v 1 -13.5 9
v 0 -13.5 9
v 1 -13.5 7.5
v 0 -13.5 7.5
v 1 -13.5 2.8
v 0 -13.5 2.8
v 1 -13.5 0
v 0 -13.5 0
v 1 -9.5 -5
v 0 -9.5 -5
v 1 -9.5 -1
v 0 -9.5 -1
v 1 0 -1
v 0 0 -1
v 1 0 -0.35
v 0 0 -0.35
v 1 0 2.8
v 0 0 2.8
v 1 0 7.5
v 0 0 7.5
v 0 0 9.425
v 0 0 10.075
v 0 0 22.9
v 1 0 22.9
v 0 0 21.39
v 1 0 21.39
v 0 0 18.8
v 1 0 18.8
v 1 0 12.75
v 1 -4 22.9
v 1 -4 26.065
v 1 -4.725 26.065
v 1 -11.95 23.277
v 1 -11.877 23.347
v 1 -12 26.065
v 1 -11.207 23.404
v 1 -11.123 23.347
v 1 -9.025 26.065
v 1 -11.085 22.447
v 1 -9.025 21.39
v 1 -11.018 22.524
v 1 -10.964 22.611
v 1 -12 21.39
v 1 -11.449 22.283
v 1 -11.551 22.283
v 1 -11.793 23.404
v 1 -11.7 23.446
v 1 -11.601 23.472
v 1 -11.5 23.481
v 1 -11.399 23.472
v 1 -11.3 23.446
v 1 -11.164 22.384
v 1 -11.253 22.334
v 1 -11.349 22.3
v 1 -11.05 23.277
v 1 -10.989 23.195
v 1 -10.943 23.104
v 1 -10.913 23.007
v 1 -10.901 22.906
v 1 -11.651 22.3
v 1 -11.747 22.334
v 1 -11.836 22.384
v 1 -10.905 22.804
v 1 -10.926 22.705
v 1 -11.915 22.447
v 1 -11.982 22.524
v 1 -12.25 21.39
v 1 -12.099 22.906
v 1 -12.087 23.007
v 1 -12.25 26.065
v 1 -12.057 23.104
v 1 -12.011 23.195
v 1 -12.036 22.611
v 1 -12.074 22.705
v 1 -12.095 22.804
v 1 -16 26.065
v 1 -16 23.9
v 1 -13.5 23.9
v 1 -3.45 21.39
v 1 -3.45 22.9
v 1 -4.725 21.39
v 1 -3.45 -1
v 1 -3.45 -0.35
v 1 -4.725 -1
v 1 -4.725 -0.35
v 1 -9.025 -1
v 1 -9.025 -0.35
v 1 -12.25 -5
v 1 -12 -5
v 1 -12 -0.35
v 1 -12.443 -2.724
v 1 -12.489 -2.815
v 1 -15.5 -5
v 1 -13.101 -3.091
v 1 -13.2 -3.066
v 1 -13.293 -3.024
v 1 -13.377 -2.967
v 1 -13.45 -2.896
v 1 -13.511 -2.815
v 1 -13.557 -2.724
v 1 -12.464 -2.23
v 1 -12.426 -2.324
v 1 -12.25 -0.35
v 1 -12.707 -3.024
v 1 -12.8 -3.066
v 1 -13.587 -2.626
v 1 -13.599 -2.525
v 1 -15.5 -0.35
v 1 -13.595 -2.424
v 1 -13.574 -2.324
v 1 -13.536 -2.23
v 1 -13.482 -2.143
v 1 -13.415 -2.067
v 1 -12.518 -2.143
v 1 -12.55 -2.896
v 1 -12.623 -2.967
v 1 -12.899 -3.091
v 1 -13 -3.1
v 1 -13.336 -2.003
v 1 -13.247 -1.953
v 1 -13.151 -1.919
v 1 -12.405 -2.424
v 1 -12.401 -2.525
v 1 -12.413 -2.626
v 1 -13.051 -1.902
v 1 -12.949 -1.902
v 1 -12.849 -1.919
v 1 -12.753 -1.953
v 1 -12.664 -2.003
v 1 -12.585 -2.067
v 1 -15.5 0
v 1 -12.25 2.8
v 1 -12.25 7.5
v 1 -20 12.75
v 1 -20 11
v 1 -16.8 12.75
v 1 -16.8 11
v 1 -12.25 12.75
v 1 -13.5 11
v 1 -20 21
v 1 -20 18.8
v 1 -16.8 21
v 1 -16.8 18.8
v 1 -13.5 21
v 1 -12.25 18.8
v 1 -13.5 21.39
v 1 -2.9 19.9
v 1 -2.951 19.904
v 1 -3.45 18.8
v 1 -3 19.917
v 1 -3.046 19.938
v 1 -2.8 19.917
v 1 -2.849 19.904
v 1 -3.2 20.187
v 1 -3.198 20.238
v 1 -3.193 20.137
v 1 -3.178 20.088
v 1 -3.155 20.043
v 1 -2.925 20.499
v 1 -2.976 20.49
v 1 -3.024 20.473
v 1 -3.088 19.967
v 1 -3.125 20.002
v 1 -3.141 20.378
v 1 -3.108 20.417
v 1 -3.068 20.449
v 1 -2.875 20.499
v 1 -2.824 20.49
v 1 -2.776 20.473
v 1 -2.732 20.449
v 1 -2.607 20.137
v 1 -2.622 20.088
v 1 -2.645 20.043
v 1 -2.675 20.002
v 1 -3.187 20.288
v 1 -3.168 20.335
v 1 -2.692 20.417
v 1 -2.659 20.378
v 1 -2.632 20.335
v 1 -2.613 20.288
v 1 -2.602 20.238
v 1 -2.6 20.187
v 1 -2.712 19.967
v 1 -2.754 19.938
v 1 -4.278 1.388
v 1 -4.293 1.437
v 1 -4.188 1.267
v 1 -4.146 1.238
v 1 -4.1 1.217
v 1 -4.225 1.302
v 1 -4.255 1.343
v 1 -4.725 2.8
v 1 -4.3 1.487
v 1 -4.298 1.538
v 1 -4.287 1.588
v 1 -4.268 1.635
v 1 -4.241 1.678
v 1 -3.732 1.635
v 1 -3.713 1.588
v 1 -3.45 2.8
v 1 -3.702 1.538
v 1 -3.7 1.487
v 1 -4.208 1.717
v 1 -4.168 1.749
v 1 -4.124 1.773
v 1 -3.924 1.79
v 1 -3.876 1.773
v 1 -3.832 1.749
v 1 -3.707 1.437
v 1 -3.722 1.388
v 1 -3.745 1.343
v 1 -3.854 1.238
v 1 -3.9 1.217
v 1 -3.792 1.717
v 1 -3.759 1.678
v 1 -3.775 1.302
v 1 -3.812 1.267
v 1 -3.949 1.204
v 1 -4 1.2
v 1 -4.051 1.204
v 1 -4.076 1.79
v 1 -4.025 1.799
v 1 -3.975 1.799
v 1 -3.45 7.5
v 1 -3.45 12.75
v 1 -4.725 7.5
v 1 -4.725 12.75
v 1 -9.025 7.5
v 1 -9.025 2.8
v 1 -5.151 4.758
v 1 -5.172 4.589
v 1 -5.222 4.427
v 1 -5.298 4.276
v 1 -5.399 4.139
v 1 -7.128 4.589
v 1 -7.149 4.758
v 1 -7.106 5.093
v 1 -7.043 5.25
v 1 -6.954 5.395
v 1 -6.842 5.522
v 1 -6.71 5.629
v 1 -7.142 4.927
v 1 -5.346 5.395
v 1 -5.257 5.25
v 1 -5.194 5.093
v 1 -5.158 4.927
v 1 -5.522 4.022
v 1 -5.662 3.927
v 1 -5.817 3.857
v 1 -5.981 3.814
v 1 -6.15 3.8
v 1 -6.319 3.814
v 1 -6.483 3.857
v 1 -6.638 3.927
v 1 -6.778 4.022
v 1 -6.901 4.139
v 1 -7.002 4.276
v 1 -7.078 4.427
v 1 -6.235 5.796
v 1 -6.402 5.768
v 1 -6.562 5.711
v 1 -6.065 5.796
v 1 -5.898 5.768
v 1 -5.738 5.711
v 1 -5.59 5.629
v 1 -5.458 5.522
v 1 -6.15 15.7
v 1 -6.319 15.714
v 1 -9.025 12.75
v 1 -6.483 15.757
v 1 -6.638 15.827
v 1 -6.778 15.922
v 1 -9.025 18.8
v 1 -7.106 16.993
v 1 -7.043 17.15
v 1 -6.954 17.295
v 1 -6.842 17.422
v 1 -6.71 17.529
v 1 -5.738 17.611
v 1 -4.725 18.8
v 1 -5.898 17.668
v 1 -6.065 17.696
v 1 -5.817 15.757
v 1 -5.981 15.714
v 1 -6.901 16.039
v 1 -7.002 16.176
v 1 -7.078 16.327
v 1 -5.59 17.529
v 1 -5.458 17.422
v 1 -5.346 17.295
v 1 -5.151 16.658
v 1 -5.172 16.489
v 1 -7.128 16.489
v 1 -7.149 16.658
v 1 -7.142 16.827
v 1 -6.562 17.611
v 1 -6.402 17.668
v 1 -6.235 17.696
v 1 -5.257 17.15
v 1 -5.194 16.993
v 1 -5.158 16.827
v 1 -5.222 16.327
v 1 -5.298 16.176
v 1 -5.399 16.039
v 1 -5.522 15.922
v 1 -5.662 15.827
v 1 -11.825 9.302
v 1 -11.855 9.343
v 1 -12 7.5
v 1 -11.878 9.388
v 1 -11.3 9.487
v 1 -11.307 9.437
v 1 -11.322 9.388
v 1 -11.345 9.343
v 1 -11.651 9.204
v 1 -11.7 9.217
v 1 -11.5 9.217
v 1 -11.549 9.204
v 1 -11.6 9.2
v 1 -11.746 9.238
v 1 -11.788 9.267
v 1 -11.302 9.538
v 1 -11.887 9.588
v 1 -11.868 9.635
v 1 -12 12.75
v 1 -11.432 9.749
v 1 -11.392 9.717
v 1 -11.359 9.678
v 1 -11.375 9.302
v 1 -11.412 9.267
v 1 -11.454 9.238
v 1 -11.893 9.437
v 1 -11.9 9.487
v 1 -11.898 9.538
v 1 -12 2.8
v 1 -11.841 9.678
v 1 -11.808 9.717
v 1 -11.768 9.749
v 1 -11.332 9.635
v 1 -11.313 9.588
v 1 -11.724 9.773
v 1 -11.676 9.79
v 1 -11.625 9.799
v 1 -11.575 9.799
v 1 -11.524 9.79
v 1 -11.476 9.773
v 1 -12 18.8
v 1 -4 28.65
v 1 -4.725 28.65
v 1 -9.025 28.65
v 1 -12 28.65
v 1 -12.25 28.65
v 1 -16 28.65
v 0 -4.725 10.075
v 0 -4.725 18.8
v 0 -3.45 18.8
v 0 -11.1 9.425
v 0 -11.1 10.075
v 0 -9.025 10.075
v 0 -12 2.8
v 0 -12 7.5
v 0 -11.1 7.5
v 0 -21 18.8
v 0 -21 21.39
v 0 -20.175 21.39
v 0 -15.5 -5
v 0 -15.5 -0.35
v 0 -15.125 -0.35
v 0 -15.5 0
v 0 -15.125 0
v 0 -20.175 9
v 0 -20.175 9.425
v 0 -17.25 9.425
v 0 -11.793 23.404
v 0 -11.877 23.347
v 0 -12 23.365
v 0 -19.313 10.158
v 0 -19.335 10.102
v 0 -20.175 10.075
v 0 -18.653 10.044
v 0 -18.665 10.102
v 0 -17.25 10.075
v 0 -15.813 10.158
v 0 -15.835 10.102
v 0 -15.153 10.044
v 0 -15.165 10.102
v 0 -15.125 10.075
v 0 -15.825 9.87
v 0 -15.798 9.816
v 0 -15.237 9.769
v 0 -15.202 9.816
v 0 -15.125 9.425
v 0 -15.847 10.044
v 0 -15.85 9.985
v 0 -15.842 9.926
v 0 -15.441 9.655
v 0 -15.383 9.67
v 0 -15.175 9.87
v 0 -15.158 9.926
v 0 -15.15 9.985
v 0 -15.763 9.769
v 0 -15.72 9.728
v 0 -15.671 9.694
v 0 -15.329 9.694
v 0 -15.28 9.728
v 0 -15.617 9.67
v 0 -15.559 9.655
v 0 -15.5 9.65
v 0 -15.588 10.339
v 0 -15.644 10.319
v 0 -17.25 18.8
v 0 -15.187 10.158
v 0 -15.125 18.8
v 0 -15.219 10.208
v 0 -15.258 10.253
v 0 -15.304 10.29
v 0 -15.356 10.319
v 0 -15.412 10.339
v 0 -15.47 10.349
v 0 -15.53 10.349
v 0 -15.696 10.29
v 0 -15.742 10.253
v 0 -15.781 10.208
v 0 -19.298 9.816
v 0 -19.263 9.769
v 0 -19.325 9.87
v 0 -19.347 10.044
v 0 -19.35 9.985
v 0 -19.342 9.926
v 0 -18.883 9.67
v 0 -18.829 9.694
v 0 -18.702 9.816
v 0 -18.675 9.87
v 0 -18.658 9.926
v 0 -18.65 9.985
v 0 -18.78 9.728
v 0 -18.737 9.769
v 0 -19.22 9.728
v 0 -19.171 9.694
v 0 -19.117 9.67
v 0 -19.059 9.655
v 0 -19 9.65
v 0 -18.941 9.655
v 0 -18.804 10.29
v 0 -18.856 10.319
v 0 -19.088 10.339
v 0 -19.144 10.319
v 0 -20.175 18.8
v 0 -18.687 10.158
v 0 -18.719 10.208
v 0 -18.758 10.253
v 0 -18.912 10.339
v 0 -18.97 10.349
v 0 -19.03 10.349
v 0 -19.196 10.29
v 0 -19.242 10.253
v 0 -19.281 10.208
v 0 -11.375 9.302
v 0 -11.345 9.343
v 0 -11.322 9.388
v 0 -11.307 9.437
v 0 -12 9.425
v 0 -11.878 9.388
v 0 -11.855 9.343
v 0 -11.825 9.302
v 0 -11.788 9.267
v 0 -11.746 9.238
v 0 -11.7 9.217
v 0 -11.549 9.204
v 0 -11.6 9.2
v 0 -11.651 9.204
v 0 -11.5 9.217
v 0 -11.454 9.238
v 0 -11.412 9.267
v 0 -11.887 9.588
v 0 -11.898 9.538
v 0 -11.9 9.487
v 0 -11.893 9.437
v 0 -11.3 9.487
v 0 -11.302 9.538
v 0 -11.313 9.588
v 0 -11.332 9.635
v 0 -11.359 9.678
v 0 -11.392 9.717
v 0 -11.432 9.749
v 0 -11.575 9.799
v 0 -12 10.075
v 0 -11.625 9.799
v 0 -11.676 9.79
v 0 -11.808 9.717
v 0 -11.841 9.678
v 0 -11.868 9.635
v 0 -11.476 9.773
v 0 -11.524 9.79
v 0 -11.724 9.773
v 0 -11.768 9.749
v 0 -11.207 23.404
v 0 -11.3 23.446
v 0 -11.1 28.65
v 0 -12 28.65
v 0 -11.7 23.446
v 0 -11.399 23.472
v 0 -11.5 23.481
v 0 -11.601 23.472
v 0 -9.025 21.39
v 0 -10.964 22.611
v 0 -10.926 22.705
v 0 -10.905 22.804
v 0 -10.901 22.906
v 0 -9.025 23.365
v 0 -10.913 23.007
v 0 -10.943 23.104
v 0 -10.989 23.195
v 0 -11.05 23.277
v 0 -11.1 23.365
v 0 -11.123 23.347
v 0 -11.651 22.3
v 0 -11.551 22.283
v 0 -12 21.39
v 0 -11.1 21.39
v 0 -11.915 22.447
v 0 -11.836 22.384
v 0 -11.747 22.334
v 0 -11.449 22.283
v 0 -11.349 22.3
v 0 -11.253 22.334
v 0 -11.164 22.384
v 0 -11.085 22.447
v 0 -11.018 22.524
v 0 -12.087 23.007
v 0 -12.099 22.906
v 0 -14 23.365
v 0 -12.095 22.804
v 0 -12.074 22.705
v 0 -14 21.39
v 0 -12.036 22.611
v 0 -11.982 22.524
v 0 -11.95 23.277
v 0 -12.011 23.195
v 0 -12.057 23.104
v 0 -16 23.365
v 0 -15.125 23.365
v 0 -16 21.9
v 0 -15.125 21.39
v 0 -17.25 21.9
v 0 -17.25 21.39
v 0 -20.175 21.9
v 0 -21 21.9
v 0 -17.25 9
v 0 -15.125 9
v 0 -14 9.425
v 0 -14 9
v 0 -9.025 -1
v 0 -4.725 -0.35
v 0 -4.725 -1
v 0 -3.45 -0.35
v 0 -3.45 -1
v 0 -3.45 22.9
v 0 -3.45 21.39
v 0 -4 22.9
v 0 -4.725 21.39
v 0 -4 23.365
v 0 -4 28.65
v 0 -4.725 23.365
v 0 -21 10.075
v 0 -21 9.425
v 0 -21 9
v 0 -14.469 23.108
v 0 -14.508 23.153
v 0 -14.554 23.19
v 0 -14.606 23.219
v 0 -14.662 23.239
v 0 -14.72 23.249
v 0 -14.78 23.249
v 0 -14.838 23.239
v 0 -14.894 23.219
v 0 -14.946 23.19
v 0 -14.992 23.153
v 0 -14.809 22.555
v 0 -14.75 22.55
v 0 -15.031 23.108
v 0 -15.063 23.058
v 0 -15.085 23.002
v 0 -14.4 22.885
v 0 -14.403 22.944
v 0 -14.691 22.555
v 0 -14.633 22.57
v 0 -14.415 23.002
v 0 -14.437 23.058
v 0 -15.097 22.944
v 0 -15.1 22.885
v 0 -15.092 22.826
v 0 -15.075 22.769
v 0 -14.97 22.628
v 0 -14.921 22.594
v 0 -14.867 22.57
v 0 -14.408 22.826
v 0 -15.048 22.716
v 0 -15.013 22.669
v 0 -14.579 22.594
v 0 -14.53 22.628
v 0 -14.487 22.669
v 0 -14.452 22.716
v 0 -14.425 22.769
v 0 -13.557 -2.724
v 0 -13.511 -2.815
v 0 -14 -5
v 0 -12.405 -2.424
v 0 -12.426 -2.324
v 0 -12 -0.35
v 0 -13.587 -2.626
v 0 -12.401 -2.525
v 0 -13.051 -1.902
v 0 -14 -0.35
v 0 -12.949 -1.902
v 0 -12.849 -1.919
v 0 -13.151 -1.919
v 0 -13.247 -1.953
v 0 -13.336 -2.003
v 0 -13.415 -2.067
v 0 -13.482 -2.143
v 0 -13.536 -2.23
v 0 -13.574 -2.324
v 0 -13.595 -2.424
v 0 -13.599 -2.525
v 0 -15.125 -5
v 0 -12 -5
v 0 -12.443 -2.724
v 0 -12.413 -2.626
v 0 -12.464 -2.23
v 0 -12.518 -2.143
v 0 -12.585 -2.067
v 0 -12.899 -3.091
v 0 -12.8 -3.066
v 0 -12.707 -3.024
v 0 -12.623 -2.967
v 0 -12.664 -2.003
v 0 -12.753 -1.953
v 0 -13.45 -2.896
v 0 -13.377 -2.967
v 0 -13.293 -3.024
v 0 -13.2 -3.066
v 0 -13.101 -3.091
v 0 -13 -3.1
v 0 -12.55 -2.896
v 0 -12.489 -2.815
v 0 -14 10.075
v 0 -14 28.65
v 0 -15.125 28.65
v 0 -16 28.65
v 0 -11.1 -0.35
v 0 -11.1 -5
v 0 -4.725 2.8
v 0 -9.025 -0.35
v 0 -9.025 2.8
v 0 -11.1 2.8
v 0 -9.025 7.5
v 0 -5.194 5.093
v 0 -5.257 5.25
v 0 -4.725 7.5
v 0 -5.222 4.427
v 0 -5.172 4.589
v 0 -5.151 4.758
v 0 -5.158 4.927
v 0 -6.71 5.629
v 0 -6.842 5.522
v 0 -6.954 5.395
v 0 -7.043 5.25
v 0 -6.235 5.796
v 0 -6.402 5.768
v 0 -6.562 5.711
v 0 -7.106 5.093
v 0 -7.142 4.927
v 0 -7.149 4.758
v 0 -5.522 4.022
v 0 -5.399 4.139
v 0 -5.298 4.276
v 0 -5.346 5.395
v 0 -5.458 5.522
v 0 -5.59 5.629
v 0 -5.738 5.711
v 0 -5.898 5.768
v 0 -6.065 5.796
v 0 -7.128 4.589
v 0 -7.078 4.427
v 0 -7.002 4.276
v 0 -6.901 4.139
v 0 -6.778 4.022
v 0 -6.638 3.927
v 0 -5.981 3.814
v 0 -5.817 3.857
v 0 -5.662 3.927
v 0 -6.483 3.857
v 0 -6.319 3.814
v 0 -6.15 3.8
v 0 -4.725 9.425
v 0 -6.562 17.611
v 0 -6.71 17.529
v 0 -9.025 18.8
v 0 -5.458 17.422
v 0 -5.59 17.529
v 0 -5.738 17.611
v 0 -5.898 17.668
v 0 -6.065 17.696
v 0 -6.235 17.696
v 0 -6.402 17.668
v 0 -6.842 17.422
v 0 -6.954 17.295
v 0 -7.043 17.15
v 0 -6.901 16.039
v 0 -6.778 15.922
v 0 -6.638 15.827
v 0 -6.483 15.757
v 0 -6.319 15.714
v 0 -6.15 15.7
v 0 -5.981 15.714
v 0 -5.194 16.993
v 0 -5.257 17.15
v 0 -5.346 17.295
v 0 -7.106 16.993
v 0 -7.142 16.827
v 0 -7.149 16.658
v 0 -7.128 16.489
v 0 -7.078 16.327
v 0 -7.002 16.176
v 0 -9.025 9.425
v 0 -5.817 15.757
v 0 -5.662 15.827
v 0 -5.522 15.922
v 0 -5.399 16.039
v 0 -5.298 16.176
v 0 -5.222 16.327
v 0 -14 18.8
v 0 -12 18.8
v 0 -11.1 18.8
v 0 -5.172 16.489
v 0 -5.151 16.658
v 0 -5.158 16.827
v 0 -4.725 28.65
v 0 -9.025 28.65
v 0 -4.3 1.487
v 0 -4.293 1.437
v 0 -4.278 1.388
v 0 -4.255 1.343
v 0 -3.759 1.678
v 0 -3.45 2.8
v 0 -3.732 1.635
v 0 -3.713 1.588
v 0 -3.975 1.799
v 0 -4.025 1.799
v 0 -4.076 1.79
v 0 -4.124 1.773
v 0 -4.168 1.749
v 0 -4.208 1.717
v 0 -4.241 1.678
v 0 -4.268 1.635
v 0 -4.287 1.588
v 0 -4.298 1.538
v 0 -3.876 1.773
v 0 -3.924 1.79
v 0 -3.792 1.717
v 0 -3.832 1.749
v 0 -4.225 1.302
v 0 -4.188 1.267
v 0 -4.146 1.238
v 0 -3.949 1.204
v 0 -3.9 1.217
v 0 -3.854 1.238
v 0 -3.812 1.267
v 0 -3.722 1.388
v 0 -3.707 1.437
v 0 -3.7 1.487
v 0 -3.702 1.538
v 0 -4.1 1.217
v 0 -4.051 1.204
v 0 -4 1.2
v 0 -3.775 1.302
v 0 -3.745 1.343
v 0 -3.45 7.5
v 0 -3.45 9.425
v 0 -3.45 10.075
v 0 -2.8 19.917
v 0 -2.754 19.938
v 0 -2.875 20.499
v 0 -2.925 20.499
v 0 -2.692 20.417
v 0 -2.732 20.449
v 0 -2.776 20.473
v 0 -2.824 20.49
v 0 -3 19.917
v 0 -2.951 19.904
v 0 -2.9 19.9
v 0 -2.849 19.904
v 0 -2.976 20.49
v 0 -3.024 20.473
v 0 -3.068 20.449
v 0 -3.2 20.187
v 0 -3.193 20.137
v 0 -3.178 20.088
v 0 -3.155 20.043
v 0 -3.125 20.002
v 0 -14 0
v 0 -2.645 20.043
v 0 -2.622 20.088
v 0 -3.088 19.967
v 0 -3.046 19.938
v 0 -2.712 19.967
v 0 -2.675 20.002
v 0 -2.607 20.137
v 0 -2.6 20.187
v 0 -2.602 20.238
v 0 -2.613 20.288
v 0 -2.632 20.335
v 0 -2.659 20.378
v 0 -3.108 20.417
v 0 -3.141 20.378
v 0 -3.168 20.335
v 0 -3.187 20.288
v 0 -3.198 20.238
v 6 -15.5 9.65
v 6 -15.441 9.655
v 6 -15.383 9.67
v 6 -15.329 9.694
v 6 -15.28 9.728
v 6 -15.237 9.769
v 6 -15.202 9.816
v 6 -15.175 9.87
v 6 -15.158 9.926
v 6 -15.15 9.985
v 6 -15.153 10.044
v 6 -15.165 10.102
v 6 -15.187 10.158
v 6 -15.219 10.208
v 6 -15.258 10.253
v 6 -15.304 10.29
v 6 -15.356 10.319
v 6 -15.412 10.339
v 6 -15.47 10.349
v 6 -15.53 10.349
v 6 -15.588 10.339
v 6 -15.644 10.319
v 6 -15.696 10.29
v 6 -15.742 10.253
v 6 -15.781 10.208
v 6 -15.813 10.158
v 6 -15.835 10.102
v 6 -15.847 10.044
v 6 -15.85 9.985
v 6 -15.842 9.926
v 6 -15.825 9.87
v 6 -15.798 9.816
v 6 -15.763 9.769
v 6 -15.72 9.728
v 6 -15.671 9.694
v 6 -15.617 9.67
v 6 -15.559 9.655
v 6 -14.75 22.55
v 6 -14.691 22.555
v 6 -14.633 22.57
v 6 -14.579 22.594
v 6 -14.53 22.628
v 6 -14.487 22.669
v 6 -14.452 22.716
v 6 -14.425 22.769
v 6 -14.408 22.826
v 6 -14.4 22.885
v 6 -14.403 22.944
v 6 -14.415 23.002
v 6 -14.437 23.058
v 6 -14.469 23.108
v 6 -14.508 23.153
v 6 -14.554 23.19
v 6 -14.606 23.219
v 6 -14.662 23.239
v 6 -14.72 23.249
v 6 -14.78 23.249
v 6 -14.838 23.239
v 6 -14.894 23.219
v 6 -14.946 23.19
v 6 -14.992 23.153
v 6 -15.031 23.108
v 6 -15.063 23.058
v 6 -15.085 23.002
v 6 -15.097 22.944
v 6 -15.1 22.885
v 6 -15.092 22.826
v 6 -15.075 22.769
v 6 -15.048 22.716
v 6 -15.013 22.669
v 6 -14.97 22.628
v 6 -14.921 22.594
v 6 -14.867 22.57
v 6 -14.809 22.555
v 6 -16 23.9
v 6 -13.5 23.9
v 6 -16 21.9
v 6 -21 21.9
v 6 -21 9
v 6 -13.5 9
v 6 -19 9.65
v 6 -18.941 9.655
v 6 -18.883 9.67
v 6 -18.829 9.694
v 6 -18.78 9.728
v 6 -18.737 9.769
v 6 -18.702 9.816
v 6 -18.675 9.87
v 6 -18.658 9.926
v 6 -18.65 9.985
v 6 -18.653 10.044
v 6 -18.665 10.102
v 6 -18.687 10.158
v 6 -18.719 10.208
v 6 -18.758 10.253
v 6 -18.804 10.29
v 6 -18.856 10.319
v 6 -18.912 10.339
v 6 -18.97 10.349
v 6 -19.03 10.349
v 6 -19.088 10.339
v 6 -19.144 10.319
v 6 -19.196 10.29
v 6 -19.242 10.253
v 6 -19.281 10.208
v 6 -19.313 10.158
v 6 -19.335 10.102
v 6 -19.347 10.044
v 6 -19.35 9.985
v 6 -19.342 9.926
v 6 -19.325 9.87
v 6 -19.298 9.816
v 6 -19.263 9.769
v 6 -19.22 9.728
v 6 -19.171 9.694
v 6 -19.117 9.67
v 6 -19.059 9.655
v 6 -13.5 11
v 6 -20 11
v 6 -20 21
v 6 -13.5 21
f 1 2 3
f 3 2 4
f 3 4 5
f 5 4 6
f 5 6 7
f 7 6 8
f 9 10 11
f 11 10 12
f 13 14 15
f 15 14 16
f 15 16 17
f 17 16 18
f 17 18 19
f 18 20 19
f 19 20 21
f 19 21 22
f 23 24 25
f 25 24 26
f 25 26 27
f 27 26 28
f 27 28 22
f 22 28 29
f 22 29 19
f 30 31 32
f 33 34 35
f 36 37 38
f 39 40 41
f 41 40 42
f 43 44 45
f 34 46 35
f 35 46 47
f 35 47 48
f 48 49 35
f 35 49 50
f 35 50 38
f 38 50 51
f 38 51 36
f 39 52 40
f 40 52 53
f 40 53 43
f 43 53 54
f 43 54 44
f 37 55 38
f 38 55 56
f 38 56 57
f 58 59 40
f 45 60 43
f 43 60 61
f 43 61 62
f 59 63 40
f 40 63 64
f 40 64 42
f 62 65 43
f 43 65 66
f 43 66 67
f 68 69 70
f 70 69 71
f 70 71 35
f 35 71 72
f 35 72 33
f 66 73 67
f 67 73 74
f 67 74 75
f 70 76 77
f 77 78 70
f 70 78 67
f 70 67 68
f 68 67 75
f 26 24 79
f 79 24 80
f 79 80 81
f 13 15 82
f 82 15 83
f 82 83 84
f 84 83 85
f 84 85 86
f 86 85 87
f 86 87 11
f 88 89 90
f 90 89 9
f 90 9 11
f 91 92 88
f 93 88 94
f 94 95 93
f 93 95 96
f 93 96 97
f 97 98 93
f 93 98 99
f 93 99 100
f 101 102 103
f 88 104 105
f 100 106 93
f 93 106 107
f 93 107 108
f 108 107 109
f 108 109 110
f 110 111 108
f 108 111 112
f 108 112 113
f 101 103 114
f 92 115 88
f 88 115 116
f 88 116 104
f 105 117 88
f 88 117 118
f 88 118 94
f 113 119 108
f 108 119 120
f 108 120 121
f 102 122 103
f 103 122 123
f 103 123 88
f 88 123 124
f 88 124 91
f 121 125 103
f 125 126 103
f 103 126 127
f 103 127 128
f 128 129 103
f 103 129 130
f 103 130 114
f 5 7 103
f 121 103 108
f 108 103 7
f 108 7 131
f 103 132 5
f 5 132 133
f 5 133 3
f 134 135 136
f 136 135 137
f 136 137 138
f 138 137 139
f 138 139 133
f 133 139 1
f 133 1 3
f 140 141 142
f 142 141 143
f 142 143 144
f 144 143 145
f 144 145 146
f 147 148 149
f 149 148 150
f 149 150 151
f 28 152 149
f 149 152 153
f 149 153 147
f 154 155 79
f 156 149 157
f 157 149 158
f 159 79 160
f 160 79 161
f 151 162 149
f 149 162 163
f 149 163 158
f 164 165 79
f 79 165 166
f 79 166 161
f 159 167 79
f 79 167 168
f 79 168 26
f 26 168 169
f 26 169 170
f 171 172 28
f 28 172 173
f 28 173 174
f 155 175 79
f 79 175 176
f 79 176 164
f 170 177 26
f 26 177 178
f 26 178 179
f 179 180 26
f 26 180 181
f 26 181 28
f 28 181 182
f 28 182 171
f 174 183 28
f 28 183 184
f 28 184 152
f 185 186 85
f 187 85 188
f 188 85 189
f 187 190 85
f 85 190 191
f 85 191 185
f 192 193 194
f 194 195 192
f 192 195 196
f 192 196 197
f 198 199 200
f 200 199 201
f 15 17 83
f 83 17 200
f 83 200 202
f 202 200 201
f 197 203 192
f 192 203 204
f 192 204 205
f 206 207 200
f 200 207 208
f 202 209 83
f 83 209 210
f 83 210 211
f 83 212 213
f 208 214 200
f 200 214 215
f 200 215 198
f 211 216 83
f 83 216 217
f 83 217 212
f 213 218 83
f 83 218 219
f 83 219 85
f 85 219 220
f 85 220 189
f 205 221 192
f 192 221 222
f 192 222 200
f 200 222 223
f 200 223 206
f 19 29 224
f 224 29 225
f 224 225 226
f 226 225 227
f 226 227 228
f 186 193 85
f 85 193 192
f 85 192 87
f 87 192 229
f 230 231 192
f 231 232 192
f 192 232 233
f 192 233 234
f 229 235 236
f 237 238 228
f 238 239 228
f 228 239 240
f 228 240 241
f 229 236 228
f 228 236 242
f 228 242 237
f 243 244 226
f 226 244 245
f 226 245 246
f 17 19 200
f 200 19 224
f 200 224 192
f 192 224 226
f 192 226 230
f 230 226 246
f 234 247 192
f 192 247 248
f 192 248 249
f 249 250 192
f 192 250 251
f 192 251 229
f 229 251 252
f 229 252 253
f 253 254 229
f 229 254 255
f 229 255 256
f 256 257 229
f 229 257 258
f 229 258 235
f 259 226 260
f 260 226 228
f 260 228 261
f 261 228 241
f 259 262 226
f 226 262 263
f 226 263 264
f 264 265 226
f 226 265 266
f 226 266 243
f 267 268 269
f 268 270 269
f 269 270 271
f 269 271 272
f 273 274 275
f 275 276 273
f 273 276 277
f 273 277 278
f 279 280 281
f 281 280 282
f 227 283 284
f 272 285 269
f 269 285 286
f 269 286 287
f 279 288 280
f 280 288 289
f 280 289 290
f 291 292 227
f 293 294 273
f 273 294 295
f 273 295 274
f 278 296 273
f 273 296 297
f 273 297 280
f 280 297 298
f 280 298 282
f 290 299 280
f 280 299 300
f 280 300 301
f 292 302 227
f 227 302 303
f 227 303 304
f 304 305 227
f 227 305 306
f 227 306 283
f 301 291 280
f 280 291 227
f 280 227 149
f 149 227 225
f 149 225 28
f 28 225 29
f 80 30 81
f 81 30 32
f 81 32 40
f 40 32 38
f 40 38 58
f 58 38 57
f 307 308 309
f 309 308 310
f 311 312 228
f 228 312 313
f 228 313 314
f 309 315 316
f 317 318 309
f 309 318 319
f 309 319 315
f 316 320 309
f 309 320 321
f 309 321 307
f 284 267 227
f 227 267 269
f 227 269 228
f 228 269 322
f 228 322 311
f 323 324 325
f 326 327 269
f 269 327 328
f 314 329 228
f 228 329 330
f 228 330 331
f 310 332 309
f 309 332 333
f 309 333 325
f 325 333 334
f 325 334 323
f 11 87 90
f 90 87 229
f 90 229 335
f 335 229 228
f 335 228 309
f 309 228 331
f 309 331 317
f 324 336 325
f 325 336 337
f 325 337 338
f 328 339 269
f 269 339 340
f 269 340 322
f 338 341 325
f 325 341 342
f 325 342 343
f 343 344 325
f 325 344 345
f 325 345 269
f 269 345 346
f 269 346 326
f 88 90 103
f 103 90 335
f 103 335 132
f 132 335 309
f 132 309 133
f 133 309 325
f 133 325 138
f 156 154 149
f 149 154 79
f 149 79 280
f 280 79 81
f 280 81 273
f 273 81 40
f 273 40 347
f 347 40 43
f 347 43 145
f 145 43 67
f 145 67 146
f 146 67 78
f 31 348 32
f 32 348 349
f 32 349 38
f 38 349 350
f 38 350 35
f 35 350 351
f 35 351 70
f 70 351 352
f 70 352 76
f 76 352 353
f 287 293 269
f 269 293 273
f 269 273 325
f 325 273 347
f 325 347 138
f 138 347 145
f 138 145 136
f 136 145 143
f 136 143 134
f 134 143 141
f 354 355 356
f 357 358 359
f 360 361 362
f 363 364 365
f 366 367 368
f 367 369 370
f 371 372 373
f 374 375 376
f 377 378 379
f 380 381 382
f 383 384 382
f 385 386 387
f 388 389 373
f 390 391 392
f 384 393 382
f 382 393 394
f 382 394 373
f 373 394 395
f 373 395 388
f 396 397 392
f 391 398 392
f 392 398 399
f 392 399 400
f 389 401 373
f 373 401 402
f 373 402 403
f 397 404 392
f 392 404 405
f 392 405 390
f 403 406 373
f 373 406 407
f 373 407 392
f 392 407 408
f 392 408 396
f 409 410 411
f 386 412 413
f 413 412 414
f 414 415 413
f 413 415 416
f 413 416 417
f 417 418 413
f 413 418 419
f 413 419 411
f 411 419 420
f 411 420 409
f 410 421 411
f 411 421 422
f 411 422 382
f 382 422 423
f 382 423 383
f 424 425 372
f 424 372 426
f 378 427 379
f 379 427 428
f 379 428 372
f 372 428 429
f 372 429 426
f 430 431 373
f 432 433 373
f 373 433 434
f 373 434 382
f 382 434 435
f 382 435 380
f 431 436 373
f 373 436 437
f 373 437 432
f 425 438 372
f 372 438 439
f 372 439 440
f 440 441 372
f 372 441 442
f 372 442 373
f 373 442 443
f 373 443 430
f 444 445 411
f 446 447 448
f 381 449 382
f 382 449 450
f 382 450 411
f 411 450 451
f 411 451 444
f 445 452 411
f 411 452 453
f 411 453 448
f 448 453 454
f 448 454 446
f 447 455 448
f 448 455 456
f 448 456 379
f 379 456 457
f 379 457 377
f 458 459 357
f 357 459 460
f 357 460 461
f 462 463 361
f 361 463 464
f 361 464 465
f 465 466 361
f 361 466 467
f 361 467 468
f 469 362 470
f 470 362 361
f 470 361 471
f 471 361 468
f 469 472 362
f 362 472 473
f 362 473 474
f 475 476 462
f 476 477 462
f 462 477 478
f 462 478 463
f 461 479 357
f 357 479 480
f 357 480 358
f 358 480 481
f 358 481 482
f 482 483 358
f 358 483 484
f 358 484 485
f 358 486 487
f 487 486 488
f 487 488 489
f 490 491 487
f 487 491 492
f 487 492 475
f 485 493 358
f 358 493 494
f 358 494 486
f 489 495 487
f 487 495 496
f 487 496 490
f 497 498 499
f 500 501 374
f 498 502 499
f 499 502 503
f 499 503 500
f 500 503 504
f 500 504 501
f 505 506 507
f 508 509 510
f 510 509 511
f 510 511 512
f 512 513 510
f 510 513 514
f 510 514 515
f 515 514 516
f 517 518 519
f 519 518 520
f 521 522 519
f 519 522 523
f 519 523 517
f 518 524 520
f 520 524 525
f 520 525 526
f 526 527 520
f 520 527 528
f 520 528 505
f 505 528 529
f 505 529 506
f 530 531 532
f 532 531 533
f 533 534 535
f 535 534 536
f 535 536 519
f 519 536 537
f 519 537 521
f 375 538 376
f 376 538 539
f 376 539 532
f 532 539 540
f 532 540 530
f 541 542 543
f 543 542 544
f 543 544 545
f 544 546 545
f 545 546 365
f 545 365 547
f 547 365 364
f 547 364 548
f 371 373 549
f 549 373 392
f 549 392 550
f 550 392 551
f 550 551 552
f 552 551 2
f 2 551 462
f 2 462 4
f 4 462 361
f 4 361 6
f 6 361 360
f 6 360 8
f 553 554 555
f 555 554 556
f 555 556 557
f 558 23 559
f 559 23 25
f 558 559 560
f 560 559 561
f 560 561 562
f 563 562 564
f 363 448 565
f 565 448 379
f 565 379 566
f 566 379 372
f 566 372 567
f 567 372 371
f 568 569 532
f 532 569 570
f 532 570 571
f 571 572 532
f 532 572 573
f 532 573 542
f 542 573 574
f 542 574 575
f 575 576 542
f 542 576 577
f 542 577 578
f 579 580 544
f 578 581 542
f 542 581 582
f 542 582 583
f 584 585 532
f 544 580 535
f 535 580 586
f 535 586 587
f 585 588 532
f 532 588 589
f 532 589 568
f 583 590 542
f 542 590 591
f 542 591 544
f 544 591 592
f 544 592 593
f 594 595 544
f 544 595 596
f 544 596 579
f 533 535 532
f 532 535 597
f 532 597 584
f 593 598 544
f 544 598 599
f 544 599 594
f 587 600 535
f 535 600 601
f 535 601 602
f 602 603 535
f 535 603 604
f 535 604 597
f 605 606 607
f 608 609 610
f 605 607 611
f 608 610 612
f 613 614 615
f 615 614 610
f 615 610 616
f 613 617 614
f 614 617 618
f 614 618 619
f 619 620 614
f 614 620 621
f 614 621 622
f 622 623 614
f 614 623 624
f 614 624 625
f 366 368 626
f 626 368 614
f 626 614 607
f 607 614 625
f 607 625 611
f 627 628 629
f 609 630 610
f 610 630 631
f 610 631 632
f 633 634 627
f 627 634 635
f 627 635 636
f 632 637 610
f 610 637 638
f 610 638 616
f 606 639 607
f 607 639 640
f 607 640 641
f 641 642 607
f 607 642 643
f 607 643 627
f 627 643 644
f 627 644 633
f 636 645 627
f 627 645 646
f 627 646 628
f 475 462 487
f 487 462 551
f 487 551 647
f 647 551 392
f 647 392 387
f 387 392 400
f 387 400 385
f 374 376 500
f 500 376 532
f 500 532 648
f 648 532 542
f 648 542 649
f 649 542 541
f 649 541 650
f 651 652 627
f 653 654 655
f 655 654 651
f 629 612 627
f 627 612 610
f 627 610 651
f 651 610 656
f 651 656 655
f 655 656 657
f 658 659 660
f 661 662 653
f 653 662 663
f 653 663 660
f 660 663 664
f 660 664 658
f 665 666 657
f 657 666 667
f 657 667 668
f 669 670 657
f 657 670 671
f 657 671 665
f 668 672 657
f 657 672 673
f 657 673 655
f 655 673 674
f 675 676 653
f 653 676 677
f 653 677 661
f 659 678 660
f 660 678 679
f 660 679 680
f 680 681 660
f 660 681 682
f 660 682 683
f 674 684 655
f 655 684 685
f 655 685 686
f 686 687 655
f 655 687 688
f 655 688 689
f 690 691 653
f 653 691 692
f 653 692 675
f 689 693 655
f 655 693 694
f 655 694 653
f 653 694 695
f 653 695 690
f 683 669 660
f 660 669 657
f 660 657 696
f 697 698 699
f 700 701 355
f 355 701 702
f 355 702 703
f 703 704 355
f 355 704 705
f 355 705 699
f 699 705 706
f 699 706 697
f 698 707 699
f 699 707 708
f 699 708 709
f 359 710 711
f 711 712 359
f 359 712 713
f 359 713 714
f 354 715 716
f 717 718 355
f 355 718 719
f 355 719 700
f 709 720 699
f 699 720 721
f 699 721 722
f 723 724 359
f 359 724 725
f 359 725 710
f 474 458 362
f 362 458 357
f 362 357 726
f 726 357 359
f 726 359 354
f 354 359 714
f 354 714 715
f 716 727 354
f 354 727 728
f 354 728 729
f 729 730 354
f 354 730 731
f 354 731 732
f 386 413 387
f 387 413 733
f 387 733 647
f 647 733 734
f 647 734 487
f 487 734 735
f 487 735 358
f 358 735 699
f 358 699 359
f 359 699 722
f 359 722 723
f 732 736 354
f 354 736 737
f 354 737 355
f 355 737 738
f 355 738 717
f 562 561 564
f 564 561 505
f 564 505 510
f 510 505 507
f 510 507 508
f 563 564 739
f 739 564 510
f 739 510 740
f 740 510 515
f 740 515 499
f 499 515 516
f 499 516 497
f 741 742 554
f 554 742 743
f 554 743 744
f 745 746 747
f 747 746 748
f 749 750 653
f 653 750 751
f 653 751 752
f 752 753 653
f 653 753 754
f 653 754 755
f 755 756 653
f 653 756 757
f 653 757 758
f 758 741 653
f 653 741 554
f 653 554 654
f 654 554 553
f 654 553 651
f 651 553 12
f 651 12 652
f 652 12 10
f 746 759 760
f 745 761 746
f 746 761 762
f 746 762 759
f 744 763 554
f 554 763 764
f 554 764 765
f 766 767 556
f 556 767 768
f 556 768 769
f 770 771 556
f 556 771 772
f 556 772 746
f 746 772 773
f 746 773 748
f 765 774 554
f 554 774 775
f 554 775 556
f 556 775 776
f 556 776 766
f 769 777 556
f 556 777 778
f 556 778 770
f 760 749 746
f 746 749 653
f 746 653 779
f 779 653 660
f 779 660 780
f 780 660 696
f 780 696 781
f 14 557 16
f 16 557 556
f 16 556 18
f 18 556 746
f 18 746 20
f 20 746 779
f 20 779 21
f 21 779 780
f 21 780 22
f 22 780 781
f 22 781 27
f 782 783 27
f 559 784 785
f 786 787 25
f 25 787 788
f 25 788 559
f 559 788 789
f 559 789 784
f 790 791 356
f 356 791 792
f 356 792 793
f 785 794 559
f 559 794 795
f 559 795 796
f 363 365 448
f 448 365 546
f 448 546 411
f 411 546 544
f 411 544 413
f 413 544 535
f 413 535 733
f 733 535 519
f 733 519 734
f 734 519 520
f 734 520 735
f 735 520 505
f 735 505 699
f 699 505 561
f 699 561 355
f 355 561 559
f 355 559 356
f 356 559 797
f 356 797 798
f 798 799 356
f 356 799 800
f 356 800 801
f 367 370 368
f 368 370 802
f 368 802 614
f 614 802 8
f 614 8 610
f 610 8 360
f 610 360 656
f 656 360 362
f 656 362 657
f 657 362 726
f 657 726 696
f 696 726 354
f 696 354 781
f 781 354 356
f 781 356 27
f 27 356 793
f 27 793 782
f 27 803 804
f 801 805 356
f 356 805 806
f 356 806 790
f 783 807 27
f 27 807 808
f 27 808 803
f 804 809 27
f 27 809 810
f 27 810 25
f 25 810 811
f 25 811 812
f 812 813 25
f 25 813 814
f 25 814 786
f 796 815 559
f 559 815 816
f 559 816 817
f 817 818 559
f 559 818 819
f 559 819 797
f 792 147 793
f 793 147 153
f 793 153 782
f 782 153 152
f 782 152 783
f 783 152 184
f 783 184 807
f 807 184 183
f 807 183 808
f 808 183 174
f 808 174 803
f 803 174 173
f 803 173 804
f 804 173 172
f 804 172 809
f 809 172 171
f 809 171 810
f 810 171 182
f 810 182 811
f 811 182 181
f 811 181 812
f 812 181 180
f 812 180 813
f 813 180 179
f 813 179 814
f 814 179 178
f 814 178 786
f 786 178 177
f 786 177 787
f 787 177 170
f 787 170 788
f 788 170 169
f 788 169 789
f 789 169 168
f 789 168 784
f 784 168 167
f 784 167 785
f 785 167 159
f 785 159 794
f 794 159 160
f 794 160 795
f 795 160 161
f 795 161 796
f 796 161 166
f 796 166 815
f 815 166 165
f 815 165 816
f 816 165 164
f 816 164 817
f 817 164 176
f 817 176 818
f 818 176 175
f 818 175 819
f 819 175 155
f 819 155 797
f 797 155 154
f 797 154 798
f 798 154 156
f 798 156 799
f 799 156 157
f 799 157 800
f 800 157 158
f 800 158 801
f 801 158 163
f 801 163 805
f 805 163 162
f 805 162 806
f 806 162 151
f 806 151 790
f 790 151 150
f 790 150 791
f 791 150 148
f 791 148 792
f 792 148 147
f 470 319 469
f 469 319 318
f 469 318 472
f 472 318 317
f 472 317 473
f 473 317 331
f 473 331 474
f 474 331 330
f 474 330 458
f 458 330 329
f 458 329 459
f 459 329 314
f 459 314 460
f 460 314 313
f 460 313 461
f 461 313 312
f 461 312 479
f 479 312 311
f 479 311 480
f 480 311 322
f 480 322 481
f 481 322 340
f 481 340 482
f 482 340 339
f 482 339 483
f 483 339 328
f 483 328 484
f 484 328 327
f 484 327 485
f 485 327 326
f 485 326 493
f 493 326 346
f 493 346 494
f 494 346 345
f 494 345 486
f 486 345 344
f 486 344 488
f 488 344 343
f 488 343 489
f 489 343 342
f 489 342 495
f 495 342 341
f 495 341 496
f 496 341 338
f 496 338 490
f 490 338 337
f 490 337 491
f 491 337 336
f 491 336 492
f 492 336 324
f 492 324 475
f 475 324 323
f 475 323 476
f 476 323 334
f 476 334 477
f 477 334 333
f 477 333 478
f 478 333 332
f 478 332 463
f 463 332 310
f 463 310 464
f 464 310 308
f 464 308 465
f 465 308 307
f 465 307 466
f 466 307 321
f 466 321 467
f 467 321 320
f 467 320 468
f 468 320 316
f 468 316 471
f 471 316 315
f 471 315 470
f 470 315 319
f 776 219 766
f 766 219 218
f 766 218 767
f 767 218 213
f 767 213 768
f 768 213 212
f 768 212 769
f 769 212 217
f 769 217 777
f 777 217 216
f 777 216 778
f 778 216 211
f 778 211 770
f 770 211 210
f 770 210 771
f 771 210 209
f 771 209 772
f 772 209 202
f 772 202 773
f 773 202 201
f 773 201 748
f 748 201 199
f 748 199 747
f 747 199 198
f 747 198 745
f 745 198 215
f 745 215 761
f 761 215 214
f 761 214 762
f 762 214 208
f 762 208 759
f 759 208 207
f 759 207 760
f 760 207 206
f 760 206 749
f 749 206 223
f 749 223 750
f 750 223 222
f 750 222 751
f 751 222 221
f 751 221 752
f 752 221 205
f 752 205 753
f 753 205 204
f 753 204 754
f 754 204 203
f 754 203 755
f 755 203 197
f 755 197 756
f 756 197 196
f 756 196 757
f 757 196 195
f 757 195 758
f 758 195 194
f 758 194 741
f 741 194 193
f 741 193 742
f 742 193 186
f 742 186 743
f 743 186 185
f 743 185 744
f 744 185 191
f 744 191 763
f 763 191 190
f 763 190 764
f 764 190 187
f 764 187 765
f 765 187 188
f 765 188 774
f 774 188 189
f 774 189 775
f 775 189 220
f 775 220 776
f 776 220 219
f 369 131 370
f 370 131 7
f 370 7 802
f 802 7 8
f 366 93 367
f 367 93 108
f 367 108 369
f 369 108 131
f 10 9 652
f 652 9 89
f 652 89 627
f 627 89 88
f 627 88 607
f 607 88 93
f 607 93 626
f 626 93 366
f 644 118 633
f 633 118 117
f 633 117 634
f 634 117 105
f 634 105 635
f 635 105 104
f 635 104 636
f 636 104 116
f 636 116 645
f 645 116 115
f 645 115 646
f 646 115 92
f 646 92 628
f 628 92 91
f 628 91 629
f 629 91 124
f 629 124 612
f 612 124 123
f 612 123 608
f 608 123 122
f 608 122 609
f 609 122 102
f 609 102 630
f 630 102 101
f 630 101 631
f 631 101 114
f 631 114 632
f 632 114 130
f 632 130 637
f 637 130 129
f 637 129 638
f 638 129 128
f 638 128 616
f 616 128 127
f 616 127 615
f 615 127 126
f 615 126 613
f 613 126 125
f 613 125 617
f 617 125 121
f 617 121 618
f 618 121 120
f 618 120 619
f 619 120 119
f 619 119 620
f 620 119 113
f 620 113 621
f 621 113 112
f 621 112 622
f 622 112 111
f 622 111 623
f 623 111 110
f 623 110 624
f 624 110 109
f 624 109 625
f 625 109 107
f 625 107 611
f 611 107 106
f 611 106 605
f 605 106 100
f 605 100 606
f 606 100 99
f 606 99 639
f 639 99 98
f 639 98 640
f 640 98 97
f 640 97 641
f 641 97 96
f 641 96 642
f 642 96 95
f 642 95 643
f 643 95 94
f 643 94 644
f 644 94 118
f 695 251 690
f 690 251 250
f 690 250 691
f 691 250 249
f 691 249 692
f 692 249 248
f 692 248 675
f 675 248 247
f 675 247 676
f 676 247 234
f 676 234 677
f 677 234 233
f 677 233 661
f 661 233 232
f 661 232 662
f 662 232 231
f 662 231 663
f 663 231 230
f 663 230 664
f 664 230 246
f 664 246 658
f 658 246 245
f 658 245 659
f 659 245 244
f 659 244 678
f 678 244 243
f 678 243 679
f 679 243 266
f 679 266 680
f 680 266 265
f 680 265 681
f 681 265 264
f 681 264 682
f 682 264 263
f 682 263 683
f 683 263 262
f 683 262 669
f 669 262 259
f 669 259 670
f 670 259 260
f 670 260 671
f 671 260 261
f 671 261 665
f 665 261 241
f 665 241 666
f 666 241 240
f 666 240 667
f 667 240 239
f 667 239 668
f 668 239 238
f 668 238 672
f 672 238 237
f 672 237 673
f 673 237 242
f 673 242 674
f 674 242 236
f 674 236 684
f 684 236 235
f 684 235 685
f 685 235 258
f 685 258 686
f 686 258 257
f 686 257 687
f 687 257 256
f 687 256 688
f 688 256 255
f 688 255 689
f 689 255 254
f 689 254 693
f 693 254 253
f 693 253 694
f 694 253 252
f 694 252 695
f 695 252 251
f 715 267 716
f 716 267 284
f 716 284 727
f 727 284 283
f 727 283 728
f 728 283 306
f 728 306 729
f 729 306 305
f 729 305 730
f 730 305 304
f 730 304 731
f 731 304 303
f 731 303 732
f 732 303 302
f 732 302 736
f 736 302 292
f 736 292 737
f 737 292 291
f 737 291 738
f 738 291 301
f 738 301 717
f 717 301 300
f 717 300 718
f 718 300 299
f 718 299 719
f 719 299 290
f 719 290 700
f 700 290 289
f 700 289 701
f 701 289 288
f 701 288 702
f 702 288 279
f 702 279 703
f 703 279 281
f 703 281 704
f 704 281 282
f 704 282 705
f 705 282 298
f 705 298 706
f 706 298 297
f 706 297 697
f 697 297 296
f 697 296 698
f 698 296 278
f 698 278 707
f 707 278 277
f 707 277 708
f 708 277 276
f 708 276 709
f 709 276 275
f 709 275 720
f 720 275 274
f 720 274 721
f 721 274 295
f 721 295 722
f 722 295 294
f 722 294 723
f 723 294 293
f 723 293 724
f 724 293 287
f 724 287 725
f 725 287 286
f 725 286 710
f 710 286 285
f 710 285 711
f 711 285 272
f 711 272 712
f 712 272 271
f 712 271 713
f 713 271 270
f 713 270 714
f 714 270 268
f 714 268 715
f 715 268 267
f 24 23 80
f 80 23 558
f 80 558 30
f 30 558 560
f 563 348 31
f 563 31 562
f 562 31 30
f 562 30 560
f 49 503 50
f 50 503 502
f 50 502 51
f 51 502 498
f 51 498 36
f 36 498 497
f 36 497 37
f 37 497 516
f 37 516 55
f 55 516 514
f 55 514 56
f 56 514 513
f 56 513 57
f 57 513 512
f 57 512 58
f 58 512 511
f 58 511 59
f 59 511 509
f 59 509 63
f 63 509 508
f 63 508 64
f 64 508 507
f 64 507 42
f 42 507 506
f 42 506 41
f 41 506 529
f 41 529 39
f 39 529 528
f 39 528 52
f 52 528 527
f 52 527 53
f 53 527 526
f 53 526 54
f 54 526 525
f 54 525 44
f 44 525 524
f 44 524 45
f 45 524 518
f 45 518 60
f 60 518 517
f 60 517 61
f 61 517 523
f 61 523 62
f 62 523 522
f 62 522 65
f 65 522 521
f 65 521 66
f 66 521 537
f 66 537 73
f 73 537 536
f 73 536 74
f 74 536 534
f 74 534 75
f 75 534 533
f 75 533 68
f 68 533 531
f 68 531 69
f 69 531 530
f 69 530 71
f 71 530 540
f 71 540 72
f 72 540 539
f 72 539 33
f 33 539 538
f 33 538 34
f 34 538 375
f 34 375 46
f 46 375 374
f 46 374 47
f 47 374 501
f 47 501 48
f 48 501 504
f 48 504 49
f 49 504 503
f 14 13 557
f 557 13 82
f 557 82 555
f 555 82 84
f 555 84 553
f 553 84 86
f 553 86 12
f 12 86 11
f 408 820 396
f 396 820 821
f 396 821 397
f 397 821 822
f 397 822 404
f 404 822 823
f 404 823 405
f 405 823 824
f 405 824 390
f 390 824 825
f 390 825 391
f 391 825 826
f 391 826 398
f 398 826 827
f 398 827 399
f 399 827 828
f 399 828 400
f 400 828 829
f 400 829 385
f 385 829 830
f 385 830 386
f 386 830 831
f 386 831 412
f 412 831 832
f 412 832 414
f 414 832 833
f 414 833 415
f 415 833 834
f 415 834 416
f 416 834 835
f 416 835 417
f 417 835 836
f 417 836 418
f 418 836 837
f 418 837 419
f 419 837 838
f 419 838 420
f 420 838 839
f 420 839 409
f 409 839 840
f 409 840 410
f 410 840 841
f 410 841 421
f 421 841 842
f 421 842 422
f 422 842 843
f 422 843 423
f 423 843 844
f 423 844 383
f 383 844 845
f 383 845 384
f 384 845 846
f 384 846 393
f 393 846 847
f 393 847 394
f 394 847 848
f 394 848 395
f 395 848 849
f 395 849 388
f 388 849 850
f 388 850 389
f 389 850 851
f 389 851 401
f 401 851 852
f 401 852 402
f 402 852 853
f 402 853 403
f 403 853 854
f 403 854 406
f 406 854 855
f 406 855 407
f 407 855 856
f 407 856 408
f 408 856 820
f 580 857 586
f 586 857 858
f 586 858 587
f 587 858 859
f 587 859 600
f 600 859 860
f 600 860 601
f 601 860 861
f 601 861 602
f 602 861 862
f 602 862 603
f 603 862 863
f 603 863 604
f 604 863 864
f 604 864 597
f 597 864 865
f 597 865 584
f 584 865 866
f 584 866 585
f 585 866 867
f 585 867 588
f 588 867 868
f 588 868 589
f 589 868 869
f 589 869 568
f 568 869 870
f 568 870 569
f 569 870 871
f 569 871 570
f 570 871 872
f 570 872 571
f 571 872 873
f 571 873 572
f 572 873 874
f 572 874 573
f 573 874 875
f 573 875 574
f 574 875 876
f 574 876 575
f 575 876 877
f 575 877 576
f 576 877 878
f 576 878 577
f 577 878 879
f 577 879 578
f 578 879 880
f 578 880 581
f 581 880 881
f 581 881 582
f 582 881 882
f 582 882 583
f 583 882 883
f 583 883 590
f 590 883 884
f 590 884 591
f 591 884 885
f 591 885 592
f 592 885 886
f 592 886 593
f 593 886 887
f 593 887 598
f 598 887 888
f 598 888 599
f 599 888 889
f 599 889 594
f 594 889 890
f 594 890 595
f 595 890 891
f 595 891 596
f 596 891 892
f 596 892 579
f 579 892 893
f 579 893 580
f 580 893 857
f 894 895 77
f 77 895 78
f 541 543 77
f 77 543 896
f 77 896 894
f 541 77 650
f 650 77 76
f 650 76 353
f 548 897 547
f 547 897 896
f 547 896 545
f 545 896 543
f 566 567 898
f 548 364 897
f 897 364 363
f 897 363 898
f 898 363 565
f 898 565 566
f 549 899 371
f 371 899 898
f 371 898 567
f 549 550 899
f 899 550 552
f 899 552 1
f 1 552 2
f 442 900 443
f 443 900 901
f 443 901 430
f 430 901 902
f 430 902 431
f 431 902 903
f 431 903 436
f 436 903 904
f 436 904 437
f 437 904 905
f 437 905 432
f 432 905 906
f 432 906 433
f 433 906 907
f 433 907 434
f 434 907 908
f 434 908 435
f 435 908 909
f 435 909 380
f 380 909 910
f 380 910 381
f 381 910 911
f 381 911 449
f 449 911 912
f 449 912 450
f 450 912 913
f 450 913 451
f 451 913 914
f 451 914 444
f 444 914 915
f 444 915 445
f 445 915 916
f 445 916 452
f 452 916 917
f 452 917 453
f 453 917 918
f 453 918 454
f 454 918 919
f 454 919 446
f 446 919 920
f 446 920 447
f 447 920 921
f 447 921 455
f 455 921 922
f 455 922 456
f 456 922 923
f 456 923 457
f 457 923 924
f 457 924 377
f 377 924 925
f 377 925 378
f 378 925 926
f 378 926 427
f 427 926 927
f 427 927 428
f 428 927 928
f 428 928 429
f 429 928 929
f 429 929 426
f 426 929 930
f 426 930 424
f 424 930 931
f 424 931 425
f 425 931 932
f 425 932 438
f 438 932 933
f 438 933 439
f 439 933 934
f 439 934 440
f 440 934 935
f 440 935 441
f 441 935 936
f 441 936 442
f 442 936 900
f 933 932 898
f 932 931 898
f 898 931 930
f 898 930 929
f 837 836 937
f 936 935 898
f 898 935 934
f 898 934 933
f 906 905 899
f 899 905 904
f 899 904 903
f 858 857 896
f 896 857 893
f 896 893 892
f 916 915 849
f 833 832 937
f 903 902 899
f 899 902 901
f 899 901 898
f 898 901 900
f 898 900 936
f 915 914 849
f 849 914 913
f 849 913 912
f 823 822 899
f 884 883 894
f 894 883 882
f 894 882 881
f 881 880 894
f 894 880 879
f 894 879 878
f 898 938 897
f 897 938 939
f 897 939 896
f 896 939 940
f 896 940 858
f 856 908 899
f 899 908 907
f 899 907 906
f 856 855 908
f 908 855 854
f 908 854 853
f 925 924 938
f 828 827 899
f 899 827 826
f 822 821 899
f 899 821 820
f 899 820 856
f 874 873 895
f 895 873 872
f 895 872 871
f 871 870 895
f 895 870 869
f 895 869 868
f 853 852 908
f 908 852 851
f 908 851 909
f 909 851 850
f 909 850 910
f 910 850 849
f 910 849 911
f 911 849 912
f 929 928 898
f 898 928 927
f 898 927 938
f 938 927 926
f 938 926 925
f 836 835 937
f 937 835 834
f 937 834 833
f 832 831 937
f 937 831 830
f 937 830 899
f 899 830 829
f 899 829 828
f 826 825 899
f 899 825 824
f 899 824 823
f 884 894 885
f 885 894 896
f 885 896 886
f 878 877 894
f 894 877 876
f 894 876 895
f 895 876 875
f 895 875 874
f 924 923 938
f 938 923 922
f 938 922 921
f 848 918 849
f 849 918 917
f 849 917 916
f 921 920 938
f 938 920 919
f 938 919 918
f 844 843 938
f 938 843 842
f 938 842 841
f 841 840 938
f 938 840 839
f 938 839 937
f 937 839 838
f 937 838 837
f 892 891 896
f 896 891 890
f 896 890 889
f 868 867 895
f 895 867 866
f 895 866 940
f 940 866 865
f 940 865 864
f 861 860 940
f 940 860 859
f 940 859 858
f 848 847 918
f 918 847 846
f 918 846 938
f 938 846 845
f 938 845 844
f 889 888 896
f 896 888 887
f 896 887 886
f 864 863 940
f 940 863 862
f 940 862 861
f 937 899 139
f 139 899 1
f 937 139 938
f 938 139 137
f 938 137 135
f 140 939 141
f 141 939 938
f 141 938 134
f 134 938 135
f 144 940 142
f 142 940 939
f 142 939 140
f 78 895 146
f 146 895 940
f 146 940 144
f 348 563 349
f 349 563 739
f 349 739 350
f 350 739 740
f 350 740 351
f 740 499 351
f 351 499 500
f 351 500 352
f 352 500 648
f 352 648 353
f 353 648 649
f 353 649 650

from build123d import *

# Parameters (mm, degrees)
SKETCH_1_W          = 28
SKETCH_1_H          = 13.5
EXTRUDE_1_DEPTH     = 1
SKETCH_2_R          = 0.3
CUT_EXTRUDE_1_DEPTH = 32.10064308
SKETCH_2_3_W        = 5
SKETCH_2_3_H        = 6
EXTRUDE_2_DEPTH     = 1
SKETCH_2_4_R        = 0.6
CUT_EXTRUDE_2_DEPTH = 33.019525293
SKETCH_3_R          = 1
CUT_EXTRUDE_3_DEPTH = 33.019525293
SKETCH_4_W          = 7
SKETCH_4_H          = 4
CUT_EXTRUDE_4_DEPTH = 1.5
SKETCH_5_R          = 0.6
CUT_EXTRUDE_5_DEPTH = 33.019525293
SKETCH_6_W          = 1
SKETCH_6_H          = 9.5
EXTRUDE_3_DEPTH     = 1
SKETCH_7_W          = 2
SKETCH_7_H          = 6.5
SKETCH_7_R          = 0.35
SKETCH_7_H_2        = 2.5
EXTRUDE_4_DEPTH     = 1
EXTRUDE_START       = 5
SKETCH_7_3_W        = 2
SKETCH_7_3_H        = 2.5
SKETCH_7_3_R        = 0.35
SKETCH_7_3_H_2      = 6.5
EXTRUDE_5_DEPTH     = 5
SKETCH_8_W          = 0.65
SKETCH_8_H          = 9.5
EXTRUDE_6_DEPTH     = 1


with BuildPart() as part:
    # 草图1 → 凸台-拉伸1 (new body)
    with BuildSketch(Plane(origin=(0, 0, 0), x_dir=(0, 0, -1), z_dir=(1, 0, 0))):
        with Locations((-14, -6.75)):
            Rectangle(SKETCH_1_W, SKETCH_1_H)
    extrude(amount=EXTRUDE_1_DEPTH)

    # 草图2 → 切除-拉伸1 (cut, through all)
    with BuildSketch(Plane(origin=(1, 0, 0), x_dir=(0, 0, -1), z_dir=(1, 0, 0))):
        with Locations((-1.5, -4)):
            Circle(SKETCH_2_R)
        with Locations((-20.2, -2.9)):
            Circle(SKETCH_2_R)
        with Locations((-9.5, -11.6)):
            Circle(SKETCH_2_R)
    extrude(amount=-CUT_EXTRUDE_1_DEPTH, mode=Mode.SUBTRACT)

    # 草图2<3> → 凸台-拉伸2 (add)
    with BuildSketch(Plane(origin=(1, 0, 0), x_dir=(0, 0, -1), z_dir=(1, 0, 0))):
        with Locations((2.5, -12.5)):
            Rectangle(SKETCH_2_3_W, SKETCH_2_3_H)
    extrude(amount=-EXTRUDE_2_DEPTH)

    # 草图2<4> → 切除-拉伸2 (cut, through all)
    with BuildSketch(Plane(origin=(1, 0, 0), x_dir=(0, 0, -1), z_dir=(1, 0, 0))):
        with Locations((2.5, -13)):
            Circle(SKETCH_2_4_R)
    extrude(amount=-CUT_EXTRUDE_2_DEPTH, mode=Mode.SUBTRACT)

    # 草图3 → 切除-拉伸3 (cut, through all)
    with BuildSketch(Plane(origin=(1, 0, 0), x_dir=(0, 0, -1), z_dir=(1, 0, 0))):
        with Locations((-4.8, -6.15)):
            Circle(SKETCH_3_R)
        with Locations((-16.7, -6.15)):
            Circle(SKETCH_3_R)
    extrude(amount=-CUT_EXTRUDE_3_DEPTH, mode=Mode.SUBTRACT)

    # 草图4 → 切除-拉伸4 (cut)
    with BuildSketch(Plane(origin=(1, 0, 0), x_dir=(0, 0, -1), z_dir=(1, 0, 0))):
        with Locations((-26.4, -2)):
            Rectangle(SKETCH_4_W, SKETCH_4_H)
    extrude(amount=-CUT_EXTRUDE_4_DEPTH, mode=Mode.SUBTRACT)

    # 草图5 → 切除-拉伸5 (cut, through all)
    with BuildSketch(Plane.ZY):
        with Locations((22.880658046, -11.5)):
            Circle(SKETCH_5_R)
    extrude(amount=-CUT_EXTRUDE_5_DEPTH, mode=Mode.SUBTRACT)

    # 草图6 → 凸台-拉伸3 (add)
    with BuildSketch(Plane(origin=(1, 0, 0), x_dir=(0, 0, -1), z_dir=(1, 0, 0))):
        with Locations((0.5, -4.75)):
            Rectangle(SKETCH_6_W, SKETCH_6_H)
    extrude(amount=-EXTRUDE_3_DEPTH)

    # 草图7 → 凸台-拉伸4 (add)
    # profile 1 of 5: a face of its own
    with BuildSketch(Plane(origin=(1, 0, 0), x_dir=(0, 0, -1), z_dir=(1, 0, 0))):
        Polygon((-11, -13.5), (-11, -10), (-21, -10), (-21, -13.5), (-21, -20), (-11, -20), align=None)
    # profile 2 of 5: a face of its own
    with BuildSketch(Plane(origin=(1, 0, 0), x_dir=(0, 0, -1), z_dir=(1, 0, 0))):
        with Locations((-10, -16.75)):
            Rectangle(SKETCH_7_W, SKETCH_7_H)
        with Locations((-10, -19)):
            Circle(SKETCH_7_R, mode=Mode.SUBTRACT)
        with Locations((-10, -15.5)):
            Circle(SKETCH_7_R, mode=Mode.SUBTRACT)
    # profile 3 of 5: a face of its own
    with BuildSketch(Plane(origin=(1, 0, 0), x_dir=(0, 0, -1), z_dir=(1, 0, 0))):
        Polygon((-21, -20), (-21, -13.5), (-21.9, -13.5), (-21.9, -16), (-21.9, -21), (-21, -21), align=None)
    # profile 4 of 5: a face of its own
    with BuildSketch(Plane(origin=(1, 0, 0), x_dir=(0, 0, -1), z_dir=(1, 0, 0))):
        Polygon((-9, -20), (-11, -20), (-21, -20), (-21, -21), (-9, -21), align=None)
    # profile 5 of 5: a face of its own
    with BuildSketch(Plane(origin=(1, 0, 0), x_dir=(0, 0, -1), z_dir=(1, 0, 0))):
        with Locations((-22.9, -14.75)):
            Rectangle(SKETCH_7_W, SKETCH_7_H_2)
        with Locations((-22.9, -14.75)):
            Circle(SKETCH_7_R, mode=Mode.SUBTRACT)
    extrude(amount=-EXTRUDE_4_DEPTH)

    # 草图7<3> → 凸台-拉伸5 (add)
    # profile 1 of 4: a face of its own
    with BuildSketch(Plane(origin=(1, 0, 0), x_dir=(0, 0, -1), z_dir=(1, 0, 0)).offset(EXTRUDE_START)):
        Polygon((-21, -20), (-21, -13.5), (-21.9, -13.5), (-21.9, -16), (-21.9, -21), (-21, -21), align=None)
    # profile 2 of 4: a face of its own
    with BuildSketch(Plane(origin=(1, 0, 0), x_dir=(0, 0, -1), z_dir=(1, 0, 0)).offset(EXTRUDE_START)):
        with Locations((-22.9, -14.75)):
            Rectangle(SKETCH_7_3_W, SKETCH_7_3_H)
        with Locations((-22.9, -14.75)):
            Circle(SKETCH_7_3_R, mode=Mode.SUBTRACT)
    # profile 3 of 4: a face of its own
    with BuildSketch(Plane(origin=(1, 0, 0), x_dir=(0, 0, -1), z_dir=(1, 0, 0)).offset(EXTRUDE_START)):
        Polygon((-9, -20), (-9, -21), (-21, -21), (-21, -20), (-11, -20), align=None)
    # profile 4 of 4: a face of its own
    with BuildSketch(Plane(origin=(1, 0, 0), x_dir=(0, 0, -1), z_dir=(1, 0, 0)).offset(EXTRUDE_START)):
        with Locations((-10, -16.75)):
            Rectangle(SKETCH_7_3_W, SKETCH_7_3_H_2)
        with Locations((-10, -19)):
            Circle(SKETCH_7_3_R, mode=Mode.SUBTRACT)
        with Locations((-10, -15.5)):
            Circle(SKETCH_7_3_R, mode=Mode.SUBTRACT)
    extrude(amount=-EXTRUDE_5_DEPTH)

    # 草图8 → 凸台-拉伸6 (add)
    with BuildSketch(Plane(origin=(1, 0, 0), x_dir=(0, 0, -1), z_dir=(1, 0, 0))):
        with Locations((-28.325, -8.75)):
            Rectangle(SKETCH_8_W, SKETCH_8_H)
        Polygon((-28.65, -16), (-23.9, -16), (-23.9, -13.5), (-28, -13.5), (-28.65, -13.5), align=None)
    extrude(amount=-EXTRUDE_6_DEPTH)


solid = part.part
